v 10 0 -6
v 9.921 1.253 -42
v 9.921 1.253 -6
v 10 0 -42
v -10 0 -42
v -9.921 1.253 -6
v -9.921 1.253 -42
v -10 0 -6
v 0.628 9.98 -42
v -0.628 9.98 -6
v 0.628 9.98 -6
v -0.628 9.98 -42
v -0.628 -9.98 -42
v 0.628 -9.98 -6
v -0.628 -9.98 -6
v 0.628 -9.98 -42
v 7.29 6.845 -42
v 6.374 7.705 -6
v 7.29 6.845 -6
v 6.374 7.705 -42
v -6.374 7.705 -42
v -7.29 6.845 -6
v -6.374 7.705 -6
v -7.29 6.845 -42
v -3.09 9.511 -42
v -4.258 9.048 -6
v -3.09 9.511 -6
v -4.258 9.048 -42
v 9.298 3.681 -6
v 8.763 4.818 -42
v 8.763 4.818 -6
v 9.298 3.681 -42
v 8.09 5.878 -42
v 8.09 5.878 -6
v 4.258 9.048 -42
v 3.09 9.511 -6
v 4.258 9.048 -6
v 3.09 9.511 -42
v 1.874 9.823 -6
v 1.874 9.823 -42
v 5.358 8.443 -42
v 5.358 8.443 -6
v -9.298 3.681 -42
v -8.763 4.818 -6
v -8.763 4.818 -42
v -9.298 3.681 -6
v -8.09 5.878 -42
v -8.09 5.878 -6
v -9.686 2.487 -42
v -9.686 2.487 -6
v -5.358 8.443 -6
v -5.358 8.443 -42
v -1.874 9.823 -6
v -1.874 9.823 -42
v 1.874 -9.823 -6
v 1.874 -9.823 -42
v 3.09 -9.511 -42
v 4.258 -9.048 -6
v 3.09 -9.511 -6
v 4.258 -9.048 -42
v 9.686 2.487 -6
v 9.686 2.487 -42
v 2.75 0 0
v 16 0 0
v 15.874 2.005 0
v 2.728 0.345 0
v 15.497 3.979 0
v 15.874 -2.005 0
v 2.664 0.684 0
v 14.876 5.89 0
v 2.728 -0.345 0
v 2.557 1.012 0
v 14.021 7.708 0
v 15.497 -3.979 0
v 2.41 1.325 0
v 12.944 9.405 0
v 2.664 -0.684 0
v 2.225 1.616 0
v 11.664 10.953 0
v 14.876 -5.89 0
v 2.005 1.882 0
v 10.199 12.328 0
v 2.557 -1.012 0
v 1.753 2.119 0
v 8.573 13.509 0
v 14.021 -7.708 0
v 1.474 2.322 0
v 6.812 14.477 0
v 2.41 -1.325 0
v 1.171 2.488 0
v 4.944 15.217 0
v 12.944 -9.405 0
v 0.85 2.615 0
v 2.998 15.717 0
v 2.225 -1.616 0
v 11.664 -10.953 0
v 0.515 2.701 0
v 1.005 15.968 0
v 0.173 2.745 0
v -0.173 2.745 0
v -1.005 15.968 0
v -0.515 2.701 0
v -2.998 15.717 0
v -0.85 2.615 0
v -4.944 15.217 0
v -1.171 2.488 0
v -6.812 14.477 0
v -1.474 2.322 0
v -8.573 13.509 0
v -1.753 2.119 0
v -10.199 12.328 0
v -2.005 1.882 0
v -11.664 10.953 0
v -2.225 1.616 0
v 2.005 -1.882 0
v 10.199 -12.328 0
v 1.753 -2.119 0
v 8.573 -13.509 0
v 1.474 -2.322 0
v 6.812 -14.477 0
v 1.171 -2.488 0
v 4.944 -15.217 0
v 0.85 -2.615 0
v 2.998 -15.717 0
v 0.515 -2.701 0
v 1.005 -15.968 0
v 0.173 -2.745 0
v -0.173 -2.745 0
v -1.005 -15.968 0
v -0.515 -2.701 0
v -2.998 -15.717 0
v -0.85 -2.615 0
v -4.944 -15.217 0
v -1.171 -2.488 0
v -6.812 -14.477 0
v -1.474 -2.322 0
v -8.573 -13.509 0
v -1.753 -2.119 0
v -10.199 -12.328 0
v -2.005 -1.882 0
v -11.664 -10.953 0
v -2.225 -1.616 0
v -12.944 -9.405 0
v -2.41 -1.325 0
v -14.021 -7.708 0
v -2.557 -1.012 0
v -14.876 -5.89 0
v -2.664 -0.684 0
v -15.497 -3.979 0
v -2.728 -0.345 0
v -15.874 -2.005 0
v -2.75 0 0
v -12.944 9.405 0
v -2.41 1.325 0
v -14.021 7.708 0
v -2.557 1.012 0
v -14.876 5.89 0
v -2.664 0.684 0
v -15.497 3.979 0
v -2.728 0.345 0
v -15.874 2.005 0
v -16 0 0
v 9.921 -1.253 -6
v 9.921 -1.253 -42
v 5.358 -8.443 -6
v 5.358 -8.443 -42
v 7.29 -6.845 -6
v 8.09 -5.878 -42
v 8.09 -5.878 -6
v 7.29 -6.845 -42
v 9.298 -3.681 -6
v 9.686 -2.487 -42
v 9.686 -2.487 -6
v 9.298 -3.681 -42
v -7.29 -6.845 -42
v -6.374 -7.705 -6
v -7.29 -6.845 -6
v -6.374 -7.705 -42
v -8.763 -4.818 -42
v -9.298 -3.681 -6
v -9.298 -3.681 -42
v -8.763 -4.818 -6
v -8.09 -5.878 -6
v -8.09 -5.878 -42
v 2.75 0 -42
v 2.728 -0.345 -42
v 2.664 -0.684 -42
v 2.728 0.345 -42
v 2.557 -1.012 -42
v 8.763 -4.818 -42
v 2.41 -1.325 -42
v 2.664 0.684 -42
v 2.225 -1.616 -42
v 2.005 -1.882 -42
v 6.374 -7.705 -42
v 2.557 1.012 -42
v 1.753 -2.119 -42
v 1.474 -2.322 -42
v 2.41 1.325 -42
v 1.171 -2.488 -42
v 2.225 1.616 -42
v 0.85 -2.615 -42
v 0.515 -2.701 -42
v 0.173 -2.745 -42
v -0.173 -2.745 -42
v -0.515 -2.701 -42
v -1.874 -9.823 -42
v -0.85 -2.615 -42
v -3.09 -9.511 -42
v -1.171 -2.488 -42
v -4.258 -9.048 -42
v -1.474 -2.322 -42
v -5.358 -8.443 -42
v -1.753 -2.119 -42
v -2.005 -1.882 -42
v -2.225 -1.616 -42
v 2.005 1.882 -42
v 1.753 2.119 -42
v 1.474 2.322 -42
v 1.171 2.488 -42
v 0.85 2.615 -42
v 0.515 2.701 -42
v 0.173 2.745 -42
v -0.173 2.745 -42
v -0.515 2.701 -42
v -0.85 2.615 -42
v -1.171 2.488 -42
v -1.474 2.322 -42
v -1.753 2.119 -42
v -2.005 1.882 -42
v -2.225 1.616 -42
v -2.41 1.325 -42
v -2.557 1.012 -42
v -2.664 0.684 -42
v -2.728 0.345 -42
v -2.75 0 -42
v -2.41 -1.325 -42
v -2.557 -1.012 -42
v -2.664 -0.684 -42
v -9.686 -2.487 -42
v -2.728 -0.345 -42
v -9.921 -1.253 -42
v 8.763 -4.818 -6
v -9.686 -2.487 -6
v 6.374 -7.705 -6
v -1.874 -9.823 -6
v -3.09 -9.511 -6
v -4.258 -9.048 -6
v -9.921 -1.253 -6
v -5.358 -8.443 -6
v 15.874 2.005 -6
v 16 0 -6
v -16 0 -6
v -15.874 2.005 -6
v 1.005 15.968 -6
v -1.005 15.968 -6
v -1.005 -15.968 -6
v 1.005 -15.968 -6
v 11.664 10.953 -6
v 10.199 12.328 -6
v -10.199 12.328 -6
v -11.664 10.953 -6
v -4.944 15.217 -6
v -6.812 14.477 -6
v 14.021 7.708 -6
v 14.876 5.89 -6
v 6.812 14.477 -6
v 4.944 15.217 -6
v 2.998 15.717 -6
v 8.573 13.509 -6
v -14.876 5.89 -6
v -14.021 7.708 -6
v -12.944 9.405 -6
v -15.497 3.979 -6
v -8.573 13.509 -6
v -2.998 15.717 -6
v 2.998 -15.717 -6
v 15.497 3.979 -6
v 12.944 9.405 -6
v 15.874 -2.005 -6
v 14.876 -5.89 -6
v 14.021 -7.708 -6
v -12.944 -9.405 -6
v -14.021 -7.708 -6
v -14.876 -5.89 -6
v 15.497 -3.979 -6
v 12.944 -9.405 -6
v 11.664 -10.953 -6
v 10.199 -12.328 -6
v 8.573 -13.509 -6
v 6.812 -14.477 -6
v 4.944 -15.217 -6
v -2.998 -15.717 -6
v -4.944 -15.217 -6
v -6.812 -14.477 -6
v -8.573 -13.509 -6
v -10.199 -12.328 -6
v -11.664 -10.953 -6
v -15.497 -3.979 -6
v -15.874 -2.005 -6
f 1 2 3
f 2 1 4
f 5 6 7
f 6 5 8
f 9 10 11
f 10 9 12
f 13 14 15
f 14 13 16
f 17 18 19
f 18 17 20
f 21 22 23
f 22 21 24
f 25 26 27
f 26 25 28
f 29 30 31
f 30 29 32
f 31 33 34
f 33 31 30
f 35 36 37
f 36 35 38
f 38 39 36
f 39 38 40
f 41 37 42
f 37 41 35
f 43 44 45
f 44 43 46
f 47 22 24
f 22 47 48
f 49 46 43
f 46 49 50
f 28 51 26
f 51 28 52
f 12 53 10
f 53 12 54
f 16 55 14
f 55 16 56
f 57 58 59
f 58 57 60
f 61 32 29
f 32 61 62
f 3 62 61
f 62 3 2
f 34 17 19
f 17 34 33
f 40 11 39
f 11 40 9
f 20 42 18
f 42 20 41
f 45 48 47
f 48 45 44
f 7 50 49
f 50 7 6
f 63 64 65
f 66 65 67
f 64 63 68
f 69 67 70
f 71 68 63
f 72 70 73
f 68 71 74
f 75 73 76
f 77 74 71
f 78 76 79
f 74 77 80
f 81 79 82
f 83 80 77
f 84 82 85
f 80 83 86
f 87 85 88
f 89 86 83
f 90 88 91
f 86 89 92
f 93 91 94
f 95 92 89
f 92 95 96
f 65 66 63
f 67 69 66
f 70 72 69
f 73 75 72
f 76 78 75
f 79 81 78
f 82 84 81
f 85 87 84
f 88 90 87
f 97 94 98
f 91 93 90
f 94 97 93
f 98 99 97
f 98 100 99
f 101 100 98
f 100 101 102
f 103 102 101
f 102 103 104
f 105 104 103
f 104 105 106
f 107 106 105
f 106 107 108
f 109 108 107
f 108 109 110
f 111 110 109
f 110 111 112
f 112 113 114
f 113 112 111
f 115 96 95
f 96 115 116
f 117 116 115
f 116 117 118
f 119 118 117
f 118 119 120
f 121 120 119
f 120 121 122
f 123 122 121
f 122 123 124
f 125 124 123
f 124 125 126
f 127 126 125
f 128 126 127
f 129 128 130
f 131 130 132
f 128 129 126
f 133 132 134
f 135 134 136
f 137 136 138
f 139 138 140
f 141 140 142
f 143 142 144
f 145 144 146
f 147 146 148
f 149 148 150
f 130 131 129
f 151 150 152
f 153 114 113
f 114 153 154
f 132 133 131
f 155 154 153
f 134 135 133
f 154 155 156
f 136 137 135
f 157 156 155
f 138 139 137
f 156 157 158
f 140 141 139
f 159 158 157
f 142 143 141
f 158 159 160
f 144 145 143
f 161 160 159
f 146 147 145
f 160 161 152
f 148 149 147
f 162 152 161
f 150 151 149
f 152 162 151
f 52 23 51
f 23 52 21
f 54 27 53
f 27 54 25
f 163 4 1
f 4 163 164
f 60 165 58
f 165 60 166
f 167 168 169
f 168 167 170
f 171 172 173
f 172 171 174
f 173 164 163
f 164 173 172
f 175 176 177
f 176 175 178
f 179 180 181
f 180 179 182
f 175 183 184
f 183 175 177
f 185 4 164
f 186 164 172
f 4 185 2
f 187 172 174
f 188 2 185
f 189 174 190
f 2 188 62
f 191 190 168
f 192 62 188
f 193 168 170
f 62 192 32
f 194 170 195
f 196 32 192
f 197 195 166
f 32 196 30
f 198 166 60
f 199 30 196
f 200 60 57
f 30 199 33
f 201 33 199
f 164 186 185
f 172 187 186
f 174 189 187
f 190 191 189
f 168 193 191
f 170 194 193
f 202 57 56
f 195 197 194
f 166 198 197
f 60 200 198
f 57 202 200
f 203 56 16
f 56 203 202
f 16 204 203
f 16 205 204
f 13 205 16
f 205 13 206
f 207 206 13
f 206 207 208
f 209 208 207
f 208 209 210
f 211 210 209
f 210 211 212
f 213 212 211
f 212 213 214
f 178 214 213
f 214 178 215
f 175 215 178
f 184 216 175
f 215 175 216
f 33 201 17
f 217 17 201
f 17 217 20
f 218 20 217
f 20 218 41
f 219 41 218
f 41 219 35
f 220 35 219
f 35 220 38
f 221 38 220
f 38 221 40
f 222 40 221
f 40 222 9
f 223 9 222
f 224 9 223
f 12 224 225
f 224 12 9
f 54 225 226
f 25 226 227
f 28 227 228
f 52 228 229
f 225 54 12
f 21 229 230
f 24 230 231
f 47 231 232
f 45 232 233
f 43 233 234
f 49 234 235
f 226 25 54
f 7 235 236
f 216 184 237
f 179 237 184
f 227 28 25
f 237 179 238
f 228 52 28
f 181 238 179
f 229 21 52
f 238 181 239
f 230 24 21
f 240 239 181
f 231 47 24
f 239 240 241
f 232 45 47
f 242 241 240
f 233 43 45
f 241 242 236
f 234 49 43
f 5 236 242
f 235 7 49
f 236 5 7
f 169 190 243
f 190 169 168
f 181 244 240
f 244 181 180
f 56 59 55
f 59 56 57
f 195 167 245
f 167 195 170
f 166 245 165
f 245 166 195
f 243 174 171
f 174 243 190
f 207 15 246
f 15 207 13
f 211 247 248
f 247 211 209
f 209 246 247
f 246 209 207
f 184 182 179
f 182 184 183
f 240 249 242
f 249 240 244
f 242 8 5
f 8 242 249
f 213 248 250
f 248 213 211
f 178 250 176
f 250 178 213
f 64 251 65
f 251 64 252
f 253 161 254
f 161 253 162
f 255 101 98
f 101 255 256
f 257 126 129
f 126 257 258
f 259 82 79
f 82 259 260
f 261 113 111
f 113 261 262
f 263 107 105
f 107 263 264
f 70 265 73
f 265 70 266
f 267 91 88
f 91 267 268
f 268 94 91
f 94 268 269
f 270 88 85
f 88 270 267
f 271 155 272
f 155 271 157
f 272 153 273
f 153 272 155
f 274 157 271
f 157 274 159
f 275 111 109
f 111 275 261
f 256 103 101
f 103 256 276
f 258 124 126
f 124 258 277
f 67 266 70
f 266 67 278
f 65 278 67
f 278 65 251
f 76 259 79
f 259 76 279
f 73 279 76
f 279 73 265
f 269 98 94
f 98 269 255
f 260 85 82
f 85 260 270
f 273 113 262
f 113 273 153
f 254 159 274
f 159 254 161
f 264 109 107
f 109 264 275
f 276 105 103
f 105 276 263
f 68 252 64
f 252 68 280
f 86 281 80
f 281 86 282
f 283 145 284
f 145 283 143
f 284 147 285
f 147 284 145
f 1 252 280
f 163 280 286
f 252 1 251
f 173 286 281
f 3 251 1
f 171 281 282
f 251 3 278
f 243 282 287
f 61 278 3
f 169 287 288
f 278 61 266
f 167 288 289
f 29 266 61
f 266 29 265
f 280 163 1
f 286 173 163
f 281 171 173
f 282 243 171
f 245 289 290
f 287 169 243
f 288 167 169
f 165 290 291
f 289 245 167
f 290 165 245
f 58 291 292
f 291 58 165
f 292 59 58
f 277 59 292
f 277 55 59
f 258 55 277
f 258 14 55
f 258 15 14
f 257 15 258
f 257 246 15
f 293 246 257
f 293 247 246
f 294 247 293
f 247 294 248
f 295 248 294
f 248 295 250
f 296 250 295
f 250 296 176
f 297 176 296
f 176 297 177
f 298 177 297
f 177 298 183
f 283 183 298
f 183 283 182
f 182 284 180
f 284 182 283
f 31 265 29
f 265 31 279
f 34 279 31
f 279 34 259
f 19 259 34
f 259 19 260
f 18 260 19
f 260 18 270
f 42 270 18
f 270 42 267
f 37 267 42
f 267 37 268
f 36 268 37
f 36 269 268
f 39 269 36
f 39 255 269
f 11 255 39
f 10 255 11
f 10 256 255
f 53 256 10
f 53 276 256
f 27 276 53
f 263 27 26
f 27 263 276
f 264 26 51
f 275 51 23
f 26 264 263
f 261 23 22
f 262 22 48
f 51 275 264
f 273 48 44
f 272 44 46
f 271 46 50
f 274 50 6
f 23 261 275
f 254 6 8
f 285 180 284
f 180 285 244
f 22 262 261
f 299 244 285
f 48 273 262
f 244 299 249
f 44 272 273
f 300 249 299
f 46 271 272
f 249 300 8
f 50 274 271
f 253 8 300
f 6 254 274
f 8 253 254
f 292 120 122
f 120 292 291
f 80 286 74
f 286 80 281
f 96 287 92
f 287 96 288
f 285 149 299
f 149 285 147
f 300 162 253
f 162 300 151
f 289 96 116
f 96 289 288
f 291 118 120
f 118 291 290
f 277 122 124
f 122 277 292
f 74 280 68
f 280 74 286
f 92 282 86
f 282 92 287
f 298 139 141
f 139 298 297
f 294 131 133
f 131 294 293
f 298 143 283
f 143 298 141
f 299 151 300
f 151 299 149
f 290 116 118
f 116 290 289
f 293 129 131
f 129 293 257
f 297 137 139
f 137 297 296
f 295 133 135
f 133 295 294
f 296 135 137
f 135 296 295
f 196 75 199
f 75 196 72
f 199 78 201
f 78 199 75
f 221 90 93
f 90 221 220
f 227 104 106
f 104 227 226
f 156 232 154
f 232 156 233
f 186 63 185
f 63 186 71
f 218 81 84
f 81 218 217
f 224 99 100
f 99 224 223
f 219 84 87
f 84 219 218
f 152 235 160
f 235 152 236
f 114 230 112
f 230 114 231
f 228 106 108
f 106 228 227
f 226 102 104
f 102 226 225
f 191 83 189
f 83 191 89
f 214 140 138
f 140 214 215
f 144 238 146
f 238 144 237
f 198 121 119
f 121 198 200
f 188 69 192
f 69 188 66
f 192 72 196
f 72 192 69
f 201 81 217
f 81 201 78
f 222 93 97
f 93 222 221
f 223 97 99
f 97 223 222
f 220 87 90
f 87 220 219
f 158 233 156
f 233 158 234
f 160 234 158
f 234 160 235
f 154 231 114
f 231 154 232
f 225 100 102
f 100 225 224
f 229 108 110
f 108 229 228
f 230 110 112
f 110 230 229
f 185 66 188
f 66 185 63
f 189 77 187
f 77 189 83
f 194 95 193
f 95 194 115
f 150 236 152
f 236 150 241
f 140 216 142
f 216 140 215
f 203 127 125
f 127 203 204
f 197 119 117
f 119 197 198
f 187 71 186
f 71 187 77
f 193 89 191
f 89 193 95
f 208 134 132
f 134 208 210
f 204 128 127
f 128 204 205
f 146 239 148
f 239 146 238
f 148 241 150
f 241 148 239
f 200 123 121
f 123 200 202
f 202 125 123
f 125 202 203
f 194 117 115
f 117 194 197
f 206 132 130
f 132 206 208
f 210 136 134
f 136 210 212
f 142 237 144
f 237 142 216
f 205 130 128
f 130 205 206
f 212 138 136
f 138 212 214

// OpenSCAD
$fn = 50;


difference() {
	union() {
		translate(v = [0, 0, -42.0000000000]) {
			cylinder(h = 42, r = 10.0000000000);
		}
		translate(v = [0, 0, -6.0000000000]) {
			cylinder(h = 6, r = 16.0000000000);
		}
	}
	union() {
		#translate(v = [0, 0, -42]) {
			cylinder(h = 42, r = 2.7500000000);
		}
	}
}
